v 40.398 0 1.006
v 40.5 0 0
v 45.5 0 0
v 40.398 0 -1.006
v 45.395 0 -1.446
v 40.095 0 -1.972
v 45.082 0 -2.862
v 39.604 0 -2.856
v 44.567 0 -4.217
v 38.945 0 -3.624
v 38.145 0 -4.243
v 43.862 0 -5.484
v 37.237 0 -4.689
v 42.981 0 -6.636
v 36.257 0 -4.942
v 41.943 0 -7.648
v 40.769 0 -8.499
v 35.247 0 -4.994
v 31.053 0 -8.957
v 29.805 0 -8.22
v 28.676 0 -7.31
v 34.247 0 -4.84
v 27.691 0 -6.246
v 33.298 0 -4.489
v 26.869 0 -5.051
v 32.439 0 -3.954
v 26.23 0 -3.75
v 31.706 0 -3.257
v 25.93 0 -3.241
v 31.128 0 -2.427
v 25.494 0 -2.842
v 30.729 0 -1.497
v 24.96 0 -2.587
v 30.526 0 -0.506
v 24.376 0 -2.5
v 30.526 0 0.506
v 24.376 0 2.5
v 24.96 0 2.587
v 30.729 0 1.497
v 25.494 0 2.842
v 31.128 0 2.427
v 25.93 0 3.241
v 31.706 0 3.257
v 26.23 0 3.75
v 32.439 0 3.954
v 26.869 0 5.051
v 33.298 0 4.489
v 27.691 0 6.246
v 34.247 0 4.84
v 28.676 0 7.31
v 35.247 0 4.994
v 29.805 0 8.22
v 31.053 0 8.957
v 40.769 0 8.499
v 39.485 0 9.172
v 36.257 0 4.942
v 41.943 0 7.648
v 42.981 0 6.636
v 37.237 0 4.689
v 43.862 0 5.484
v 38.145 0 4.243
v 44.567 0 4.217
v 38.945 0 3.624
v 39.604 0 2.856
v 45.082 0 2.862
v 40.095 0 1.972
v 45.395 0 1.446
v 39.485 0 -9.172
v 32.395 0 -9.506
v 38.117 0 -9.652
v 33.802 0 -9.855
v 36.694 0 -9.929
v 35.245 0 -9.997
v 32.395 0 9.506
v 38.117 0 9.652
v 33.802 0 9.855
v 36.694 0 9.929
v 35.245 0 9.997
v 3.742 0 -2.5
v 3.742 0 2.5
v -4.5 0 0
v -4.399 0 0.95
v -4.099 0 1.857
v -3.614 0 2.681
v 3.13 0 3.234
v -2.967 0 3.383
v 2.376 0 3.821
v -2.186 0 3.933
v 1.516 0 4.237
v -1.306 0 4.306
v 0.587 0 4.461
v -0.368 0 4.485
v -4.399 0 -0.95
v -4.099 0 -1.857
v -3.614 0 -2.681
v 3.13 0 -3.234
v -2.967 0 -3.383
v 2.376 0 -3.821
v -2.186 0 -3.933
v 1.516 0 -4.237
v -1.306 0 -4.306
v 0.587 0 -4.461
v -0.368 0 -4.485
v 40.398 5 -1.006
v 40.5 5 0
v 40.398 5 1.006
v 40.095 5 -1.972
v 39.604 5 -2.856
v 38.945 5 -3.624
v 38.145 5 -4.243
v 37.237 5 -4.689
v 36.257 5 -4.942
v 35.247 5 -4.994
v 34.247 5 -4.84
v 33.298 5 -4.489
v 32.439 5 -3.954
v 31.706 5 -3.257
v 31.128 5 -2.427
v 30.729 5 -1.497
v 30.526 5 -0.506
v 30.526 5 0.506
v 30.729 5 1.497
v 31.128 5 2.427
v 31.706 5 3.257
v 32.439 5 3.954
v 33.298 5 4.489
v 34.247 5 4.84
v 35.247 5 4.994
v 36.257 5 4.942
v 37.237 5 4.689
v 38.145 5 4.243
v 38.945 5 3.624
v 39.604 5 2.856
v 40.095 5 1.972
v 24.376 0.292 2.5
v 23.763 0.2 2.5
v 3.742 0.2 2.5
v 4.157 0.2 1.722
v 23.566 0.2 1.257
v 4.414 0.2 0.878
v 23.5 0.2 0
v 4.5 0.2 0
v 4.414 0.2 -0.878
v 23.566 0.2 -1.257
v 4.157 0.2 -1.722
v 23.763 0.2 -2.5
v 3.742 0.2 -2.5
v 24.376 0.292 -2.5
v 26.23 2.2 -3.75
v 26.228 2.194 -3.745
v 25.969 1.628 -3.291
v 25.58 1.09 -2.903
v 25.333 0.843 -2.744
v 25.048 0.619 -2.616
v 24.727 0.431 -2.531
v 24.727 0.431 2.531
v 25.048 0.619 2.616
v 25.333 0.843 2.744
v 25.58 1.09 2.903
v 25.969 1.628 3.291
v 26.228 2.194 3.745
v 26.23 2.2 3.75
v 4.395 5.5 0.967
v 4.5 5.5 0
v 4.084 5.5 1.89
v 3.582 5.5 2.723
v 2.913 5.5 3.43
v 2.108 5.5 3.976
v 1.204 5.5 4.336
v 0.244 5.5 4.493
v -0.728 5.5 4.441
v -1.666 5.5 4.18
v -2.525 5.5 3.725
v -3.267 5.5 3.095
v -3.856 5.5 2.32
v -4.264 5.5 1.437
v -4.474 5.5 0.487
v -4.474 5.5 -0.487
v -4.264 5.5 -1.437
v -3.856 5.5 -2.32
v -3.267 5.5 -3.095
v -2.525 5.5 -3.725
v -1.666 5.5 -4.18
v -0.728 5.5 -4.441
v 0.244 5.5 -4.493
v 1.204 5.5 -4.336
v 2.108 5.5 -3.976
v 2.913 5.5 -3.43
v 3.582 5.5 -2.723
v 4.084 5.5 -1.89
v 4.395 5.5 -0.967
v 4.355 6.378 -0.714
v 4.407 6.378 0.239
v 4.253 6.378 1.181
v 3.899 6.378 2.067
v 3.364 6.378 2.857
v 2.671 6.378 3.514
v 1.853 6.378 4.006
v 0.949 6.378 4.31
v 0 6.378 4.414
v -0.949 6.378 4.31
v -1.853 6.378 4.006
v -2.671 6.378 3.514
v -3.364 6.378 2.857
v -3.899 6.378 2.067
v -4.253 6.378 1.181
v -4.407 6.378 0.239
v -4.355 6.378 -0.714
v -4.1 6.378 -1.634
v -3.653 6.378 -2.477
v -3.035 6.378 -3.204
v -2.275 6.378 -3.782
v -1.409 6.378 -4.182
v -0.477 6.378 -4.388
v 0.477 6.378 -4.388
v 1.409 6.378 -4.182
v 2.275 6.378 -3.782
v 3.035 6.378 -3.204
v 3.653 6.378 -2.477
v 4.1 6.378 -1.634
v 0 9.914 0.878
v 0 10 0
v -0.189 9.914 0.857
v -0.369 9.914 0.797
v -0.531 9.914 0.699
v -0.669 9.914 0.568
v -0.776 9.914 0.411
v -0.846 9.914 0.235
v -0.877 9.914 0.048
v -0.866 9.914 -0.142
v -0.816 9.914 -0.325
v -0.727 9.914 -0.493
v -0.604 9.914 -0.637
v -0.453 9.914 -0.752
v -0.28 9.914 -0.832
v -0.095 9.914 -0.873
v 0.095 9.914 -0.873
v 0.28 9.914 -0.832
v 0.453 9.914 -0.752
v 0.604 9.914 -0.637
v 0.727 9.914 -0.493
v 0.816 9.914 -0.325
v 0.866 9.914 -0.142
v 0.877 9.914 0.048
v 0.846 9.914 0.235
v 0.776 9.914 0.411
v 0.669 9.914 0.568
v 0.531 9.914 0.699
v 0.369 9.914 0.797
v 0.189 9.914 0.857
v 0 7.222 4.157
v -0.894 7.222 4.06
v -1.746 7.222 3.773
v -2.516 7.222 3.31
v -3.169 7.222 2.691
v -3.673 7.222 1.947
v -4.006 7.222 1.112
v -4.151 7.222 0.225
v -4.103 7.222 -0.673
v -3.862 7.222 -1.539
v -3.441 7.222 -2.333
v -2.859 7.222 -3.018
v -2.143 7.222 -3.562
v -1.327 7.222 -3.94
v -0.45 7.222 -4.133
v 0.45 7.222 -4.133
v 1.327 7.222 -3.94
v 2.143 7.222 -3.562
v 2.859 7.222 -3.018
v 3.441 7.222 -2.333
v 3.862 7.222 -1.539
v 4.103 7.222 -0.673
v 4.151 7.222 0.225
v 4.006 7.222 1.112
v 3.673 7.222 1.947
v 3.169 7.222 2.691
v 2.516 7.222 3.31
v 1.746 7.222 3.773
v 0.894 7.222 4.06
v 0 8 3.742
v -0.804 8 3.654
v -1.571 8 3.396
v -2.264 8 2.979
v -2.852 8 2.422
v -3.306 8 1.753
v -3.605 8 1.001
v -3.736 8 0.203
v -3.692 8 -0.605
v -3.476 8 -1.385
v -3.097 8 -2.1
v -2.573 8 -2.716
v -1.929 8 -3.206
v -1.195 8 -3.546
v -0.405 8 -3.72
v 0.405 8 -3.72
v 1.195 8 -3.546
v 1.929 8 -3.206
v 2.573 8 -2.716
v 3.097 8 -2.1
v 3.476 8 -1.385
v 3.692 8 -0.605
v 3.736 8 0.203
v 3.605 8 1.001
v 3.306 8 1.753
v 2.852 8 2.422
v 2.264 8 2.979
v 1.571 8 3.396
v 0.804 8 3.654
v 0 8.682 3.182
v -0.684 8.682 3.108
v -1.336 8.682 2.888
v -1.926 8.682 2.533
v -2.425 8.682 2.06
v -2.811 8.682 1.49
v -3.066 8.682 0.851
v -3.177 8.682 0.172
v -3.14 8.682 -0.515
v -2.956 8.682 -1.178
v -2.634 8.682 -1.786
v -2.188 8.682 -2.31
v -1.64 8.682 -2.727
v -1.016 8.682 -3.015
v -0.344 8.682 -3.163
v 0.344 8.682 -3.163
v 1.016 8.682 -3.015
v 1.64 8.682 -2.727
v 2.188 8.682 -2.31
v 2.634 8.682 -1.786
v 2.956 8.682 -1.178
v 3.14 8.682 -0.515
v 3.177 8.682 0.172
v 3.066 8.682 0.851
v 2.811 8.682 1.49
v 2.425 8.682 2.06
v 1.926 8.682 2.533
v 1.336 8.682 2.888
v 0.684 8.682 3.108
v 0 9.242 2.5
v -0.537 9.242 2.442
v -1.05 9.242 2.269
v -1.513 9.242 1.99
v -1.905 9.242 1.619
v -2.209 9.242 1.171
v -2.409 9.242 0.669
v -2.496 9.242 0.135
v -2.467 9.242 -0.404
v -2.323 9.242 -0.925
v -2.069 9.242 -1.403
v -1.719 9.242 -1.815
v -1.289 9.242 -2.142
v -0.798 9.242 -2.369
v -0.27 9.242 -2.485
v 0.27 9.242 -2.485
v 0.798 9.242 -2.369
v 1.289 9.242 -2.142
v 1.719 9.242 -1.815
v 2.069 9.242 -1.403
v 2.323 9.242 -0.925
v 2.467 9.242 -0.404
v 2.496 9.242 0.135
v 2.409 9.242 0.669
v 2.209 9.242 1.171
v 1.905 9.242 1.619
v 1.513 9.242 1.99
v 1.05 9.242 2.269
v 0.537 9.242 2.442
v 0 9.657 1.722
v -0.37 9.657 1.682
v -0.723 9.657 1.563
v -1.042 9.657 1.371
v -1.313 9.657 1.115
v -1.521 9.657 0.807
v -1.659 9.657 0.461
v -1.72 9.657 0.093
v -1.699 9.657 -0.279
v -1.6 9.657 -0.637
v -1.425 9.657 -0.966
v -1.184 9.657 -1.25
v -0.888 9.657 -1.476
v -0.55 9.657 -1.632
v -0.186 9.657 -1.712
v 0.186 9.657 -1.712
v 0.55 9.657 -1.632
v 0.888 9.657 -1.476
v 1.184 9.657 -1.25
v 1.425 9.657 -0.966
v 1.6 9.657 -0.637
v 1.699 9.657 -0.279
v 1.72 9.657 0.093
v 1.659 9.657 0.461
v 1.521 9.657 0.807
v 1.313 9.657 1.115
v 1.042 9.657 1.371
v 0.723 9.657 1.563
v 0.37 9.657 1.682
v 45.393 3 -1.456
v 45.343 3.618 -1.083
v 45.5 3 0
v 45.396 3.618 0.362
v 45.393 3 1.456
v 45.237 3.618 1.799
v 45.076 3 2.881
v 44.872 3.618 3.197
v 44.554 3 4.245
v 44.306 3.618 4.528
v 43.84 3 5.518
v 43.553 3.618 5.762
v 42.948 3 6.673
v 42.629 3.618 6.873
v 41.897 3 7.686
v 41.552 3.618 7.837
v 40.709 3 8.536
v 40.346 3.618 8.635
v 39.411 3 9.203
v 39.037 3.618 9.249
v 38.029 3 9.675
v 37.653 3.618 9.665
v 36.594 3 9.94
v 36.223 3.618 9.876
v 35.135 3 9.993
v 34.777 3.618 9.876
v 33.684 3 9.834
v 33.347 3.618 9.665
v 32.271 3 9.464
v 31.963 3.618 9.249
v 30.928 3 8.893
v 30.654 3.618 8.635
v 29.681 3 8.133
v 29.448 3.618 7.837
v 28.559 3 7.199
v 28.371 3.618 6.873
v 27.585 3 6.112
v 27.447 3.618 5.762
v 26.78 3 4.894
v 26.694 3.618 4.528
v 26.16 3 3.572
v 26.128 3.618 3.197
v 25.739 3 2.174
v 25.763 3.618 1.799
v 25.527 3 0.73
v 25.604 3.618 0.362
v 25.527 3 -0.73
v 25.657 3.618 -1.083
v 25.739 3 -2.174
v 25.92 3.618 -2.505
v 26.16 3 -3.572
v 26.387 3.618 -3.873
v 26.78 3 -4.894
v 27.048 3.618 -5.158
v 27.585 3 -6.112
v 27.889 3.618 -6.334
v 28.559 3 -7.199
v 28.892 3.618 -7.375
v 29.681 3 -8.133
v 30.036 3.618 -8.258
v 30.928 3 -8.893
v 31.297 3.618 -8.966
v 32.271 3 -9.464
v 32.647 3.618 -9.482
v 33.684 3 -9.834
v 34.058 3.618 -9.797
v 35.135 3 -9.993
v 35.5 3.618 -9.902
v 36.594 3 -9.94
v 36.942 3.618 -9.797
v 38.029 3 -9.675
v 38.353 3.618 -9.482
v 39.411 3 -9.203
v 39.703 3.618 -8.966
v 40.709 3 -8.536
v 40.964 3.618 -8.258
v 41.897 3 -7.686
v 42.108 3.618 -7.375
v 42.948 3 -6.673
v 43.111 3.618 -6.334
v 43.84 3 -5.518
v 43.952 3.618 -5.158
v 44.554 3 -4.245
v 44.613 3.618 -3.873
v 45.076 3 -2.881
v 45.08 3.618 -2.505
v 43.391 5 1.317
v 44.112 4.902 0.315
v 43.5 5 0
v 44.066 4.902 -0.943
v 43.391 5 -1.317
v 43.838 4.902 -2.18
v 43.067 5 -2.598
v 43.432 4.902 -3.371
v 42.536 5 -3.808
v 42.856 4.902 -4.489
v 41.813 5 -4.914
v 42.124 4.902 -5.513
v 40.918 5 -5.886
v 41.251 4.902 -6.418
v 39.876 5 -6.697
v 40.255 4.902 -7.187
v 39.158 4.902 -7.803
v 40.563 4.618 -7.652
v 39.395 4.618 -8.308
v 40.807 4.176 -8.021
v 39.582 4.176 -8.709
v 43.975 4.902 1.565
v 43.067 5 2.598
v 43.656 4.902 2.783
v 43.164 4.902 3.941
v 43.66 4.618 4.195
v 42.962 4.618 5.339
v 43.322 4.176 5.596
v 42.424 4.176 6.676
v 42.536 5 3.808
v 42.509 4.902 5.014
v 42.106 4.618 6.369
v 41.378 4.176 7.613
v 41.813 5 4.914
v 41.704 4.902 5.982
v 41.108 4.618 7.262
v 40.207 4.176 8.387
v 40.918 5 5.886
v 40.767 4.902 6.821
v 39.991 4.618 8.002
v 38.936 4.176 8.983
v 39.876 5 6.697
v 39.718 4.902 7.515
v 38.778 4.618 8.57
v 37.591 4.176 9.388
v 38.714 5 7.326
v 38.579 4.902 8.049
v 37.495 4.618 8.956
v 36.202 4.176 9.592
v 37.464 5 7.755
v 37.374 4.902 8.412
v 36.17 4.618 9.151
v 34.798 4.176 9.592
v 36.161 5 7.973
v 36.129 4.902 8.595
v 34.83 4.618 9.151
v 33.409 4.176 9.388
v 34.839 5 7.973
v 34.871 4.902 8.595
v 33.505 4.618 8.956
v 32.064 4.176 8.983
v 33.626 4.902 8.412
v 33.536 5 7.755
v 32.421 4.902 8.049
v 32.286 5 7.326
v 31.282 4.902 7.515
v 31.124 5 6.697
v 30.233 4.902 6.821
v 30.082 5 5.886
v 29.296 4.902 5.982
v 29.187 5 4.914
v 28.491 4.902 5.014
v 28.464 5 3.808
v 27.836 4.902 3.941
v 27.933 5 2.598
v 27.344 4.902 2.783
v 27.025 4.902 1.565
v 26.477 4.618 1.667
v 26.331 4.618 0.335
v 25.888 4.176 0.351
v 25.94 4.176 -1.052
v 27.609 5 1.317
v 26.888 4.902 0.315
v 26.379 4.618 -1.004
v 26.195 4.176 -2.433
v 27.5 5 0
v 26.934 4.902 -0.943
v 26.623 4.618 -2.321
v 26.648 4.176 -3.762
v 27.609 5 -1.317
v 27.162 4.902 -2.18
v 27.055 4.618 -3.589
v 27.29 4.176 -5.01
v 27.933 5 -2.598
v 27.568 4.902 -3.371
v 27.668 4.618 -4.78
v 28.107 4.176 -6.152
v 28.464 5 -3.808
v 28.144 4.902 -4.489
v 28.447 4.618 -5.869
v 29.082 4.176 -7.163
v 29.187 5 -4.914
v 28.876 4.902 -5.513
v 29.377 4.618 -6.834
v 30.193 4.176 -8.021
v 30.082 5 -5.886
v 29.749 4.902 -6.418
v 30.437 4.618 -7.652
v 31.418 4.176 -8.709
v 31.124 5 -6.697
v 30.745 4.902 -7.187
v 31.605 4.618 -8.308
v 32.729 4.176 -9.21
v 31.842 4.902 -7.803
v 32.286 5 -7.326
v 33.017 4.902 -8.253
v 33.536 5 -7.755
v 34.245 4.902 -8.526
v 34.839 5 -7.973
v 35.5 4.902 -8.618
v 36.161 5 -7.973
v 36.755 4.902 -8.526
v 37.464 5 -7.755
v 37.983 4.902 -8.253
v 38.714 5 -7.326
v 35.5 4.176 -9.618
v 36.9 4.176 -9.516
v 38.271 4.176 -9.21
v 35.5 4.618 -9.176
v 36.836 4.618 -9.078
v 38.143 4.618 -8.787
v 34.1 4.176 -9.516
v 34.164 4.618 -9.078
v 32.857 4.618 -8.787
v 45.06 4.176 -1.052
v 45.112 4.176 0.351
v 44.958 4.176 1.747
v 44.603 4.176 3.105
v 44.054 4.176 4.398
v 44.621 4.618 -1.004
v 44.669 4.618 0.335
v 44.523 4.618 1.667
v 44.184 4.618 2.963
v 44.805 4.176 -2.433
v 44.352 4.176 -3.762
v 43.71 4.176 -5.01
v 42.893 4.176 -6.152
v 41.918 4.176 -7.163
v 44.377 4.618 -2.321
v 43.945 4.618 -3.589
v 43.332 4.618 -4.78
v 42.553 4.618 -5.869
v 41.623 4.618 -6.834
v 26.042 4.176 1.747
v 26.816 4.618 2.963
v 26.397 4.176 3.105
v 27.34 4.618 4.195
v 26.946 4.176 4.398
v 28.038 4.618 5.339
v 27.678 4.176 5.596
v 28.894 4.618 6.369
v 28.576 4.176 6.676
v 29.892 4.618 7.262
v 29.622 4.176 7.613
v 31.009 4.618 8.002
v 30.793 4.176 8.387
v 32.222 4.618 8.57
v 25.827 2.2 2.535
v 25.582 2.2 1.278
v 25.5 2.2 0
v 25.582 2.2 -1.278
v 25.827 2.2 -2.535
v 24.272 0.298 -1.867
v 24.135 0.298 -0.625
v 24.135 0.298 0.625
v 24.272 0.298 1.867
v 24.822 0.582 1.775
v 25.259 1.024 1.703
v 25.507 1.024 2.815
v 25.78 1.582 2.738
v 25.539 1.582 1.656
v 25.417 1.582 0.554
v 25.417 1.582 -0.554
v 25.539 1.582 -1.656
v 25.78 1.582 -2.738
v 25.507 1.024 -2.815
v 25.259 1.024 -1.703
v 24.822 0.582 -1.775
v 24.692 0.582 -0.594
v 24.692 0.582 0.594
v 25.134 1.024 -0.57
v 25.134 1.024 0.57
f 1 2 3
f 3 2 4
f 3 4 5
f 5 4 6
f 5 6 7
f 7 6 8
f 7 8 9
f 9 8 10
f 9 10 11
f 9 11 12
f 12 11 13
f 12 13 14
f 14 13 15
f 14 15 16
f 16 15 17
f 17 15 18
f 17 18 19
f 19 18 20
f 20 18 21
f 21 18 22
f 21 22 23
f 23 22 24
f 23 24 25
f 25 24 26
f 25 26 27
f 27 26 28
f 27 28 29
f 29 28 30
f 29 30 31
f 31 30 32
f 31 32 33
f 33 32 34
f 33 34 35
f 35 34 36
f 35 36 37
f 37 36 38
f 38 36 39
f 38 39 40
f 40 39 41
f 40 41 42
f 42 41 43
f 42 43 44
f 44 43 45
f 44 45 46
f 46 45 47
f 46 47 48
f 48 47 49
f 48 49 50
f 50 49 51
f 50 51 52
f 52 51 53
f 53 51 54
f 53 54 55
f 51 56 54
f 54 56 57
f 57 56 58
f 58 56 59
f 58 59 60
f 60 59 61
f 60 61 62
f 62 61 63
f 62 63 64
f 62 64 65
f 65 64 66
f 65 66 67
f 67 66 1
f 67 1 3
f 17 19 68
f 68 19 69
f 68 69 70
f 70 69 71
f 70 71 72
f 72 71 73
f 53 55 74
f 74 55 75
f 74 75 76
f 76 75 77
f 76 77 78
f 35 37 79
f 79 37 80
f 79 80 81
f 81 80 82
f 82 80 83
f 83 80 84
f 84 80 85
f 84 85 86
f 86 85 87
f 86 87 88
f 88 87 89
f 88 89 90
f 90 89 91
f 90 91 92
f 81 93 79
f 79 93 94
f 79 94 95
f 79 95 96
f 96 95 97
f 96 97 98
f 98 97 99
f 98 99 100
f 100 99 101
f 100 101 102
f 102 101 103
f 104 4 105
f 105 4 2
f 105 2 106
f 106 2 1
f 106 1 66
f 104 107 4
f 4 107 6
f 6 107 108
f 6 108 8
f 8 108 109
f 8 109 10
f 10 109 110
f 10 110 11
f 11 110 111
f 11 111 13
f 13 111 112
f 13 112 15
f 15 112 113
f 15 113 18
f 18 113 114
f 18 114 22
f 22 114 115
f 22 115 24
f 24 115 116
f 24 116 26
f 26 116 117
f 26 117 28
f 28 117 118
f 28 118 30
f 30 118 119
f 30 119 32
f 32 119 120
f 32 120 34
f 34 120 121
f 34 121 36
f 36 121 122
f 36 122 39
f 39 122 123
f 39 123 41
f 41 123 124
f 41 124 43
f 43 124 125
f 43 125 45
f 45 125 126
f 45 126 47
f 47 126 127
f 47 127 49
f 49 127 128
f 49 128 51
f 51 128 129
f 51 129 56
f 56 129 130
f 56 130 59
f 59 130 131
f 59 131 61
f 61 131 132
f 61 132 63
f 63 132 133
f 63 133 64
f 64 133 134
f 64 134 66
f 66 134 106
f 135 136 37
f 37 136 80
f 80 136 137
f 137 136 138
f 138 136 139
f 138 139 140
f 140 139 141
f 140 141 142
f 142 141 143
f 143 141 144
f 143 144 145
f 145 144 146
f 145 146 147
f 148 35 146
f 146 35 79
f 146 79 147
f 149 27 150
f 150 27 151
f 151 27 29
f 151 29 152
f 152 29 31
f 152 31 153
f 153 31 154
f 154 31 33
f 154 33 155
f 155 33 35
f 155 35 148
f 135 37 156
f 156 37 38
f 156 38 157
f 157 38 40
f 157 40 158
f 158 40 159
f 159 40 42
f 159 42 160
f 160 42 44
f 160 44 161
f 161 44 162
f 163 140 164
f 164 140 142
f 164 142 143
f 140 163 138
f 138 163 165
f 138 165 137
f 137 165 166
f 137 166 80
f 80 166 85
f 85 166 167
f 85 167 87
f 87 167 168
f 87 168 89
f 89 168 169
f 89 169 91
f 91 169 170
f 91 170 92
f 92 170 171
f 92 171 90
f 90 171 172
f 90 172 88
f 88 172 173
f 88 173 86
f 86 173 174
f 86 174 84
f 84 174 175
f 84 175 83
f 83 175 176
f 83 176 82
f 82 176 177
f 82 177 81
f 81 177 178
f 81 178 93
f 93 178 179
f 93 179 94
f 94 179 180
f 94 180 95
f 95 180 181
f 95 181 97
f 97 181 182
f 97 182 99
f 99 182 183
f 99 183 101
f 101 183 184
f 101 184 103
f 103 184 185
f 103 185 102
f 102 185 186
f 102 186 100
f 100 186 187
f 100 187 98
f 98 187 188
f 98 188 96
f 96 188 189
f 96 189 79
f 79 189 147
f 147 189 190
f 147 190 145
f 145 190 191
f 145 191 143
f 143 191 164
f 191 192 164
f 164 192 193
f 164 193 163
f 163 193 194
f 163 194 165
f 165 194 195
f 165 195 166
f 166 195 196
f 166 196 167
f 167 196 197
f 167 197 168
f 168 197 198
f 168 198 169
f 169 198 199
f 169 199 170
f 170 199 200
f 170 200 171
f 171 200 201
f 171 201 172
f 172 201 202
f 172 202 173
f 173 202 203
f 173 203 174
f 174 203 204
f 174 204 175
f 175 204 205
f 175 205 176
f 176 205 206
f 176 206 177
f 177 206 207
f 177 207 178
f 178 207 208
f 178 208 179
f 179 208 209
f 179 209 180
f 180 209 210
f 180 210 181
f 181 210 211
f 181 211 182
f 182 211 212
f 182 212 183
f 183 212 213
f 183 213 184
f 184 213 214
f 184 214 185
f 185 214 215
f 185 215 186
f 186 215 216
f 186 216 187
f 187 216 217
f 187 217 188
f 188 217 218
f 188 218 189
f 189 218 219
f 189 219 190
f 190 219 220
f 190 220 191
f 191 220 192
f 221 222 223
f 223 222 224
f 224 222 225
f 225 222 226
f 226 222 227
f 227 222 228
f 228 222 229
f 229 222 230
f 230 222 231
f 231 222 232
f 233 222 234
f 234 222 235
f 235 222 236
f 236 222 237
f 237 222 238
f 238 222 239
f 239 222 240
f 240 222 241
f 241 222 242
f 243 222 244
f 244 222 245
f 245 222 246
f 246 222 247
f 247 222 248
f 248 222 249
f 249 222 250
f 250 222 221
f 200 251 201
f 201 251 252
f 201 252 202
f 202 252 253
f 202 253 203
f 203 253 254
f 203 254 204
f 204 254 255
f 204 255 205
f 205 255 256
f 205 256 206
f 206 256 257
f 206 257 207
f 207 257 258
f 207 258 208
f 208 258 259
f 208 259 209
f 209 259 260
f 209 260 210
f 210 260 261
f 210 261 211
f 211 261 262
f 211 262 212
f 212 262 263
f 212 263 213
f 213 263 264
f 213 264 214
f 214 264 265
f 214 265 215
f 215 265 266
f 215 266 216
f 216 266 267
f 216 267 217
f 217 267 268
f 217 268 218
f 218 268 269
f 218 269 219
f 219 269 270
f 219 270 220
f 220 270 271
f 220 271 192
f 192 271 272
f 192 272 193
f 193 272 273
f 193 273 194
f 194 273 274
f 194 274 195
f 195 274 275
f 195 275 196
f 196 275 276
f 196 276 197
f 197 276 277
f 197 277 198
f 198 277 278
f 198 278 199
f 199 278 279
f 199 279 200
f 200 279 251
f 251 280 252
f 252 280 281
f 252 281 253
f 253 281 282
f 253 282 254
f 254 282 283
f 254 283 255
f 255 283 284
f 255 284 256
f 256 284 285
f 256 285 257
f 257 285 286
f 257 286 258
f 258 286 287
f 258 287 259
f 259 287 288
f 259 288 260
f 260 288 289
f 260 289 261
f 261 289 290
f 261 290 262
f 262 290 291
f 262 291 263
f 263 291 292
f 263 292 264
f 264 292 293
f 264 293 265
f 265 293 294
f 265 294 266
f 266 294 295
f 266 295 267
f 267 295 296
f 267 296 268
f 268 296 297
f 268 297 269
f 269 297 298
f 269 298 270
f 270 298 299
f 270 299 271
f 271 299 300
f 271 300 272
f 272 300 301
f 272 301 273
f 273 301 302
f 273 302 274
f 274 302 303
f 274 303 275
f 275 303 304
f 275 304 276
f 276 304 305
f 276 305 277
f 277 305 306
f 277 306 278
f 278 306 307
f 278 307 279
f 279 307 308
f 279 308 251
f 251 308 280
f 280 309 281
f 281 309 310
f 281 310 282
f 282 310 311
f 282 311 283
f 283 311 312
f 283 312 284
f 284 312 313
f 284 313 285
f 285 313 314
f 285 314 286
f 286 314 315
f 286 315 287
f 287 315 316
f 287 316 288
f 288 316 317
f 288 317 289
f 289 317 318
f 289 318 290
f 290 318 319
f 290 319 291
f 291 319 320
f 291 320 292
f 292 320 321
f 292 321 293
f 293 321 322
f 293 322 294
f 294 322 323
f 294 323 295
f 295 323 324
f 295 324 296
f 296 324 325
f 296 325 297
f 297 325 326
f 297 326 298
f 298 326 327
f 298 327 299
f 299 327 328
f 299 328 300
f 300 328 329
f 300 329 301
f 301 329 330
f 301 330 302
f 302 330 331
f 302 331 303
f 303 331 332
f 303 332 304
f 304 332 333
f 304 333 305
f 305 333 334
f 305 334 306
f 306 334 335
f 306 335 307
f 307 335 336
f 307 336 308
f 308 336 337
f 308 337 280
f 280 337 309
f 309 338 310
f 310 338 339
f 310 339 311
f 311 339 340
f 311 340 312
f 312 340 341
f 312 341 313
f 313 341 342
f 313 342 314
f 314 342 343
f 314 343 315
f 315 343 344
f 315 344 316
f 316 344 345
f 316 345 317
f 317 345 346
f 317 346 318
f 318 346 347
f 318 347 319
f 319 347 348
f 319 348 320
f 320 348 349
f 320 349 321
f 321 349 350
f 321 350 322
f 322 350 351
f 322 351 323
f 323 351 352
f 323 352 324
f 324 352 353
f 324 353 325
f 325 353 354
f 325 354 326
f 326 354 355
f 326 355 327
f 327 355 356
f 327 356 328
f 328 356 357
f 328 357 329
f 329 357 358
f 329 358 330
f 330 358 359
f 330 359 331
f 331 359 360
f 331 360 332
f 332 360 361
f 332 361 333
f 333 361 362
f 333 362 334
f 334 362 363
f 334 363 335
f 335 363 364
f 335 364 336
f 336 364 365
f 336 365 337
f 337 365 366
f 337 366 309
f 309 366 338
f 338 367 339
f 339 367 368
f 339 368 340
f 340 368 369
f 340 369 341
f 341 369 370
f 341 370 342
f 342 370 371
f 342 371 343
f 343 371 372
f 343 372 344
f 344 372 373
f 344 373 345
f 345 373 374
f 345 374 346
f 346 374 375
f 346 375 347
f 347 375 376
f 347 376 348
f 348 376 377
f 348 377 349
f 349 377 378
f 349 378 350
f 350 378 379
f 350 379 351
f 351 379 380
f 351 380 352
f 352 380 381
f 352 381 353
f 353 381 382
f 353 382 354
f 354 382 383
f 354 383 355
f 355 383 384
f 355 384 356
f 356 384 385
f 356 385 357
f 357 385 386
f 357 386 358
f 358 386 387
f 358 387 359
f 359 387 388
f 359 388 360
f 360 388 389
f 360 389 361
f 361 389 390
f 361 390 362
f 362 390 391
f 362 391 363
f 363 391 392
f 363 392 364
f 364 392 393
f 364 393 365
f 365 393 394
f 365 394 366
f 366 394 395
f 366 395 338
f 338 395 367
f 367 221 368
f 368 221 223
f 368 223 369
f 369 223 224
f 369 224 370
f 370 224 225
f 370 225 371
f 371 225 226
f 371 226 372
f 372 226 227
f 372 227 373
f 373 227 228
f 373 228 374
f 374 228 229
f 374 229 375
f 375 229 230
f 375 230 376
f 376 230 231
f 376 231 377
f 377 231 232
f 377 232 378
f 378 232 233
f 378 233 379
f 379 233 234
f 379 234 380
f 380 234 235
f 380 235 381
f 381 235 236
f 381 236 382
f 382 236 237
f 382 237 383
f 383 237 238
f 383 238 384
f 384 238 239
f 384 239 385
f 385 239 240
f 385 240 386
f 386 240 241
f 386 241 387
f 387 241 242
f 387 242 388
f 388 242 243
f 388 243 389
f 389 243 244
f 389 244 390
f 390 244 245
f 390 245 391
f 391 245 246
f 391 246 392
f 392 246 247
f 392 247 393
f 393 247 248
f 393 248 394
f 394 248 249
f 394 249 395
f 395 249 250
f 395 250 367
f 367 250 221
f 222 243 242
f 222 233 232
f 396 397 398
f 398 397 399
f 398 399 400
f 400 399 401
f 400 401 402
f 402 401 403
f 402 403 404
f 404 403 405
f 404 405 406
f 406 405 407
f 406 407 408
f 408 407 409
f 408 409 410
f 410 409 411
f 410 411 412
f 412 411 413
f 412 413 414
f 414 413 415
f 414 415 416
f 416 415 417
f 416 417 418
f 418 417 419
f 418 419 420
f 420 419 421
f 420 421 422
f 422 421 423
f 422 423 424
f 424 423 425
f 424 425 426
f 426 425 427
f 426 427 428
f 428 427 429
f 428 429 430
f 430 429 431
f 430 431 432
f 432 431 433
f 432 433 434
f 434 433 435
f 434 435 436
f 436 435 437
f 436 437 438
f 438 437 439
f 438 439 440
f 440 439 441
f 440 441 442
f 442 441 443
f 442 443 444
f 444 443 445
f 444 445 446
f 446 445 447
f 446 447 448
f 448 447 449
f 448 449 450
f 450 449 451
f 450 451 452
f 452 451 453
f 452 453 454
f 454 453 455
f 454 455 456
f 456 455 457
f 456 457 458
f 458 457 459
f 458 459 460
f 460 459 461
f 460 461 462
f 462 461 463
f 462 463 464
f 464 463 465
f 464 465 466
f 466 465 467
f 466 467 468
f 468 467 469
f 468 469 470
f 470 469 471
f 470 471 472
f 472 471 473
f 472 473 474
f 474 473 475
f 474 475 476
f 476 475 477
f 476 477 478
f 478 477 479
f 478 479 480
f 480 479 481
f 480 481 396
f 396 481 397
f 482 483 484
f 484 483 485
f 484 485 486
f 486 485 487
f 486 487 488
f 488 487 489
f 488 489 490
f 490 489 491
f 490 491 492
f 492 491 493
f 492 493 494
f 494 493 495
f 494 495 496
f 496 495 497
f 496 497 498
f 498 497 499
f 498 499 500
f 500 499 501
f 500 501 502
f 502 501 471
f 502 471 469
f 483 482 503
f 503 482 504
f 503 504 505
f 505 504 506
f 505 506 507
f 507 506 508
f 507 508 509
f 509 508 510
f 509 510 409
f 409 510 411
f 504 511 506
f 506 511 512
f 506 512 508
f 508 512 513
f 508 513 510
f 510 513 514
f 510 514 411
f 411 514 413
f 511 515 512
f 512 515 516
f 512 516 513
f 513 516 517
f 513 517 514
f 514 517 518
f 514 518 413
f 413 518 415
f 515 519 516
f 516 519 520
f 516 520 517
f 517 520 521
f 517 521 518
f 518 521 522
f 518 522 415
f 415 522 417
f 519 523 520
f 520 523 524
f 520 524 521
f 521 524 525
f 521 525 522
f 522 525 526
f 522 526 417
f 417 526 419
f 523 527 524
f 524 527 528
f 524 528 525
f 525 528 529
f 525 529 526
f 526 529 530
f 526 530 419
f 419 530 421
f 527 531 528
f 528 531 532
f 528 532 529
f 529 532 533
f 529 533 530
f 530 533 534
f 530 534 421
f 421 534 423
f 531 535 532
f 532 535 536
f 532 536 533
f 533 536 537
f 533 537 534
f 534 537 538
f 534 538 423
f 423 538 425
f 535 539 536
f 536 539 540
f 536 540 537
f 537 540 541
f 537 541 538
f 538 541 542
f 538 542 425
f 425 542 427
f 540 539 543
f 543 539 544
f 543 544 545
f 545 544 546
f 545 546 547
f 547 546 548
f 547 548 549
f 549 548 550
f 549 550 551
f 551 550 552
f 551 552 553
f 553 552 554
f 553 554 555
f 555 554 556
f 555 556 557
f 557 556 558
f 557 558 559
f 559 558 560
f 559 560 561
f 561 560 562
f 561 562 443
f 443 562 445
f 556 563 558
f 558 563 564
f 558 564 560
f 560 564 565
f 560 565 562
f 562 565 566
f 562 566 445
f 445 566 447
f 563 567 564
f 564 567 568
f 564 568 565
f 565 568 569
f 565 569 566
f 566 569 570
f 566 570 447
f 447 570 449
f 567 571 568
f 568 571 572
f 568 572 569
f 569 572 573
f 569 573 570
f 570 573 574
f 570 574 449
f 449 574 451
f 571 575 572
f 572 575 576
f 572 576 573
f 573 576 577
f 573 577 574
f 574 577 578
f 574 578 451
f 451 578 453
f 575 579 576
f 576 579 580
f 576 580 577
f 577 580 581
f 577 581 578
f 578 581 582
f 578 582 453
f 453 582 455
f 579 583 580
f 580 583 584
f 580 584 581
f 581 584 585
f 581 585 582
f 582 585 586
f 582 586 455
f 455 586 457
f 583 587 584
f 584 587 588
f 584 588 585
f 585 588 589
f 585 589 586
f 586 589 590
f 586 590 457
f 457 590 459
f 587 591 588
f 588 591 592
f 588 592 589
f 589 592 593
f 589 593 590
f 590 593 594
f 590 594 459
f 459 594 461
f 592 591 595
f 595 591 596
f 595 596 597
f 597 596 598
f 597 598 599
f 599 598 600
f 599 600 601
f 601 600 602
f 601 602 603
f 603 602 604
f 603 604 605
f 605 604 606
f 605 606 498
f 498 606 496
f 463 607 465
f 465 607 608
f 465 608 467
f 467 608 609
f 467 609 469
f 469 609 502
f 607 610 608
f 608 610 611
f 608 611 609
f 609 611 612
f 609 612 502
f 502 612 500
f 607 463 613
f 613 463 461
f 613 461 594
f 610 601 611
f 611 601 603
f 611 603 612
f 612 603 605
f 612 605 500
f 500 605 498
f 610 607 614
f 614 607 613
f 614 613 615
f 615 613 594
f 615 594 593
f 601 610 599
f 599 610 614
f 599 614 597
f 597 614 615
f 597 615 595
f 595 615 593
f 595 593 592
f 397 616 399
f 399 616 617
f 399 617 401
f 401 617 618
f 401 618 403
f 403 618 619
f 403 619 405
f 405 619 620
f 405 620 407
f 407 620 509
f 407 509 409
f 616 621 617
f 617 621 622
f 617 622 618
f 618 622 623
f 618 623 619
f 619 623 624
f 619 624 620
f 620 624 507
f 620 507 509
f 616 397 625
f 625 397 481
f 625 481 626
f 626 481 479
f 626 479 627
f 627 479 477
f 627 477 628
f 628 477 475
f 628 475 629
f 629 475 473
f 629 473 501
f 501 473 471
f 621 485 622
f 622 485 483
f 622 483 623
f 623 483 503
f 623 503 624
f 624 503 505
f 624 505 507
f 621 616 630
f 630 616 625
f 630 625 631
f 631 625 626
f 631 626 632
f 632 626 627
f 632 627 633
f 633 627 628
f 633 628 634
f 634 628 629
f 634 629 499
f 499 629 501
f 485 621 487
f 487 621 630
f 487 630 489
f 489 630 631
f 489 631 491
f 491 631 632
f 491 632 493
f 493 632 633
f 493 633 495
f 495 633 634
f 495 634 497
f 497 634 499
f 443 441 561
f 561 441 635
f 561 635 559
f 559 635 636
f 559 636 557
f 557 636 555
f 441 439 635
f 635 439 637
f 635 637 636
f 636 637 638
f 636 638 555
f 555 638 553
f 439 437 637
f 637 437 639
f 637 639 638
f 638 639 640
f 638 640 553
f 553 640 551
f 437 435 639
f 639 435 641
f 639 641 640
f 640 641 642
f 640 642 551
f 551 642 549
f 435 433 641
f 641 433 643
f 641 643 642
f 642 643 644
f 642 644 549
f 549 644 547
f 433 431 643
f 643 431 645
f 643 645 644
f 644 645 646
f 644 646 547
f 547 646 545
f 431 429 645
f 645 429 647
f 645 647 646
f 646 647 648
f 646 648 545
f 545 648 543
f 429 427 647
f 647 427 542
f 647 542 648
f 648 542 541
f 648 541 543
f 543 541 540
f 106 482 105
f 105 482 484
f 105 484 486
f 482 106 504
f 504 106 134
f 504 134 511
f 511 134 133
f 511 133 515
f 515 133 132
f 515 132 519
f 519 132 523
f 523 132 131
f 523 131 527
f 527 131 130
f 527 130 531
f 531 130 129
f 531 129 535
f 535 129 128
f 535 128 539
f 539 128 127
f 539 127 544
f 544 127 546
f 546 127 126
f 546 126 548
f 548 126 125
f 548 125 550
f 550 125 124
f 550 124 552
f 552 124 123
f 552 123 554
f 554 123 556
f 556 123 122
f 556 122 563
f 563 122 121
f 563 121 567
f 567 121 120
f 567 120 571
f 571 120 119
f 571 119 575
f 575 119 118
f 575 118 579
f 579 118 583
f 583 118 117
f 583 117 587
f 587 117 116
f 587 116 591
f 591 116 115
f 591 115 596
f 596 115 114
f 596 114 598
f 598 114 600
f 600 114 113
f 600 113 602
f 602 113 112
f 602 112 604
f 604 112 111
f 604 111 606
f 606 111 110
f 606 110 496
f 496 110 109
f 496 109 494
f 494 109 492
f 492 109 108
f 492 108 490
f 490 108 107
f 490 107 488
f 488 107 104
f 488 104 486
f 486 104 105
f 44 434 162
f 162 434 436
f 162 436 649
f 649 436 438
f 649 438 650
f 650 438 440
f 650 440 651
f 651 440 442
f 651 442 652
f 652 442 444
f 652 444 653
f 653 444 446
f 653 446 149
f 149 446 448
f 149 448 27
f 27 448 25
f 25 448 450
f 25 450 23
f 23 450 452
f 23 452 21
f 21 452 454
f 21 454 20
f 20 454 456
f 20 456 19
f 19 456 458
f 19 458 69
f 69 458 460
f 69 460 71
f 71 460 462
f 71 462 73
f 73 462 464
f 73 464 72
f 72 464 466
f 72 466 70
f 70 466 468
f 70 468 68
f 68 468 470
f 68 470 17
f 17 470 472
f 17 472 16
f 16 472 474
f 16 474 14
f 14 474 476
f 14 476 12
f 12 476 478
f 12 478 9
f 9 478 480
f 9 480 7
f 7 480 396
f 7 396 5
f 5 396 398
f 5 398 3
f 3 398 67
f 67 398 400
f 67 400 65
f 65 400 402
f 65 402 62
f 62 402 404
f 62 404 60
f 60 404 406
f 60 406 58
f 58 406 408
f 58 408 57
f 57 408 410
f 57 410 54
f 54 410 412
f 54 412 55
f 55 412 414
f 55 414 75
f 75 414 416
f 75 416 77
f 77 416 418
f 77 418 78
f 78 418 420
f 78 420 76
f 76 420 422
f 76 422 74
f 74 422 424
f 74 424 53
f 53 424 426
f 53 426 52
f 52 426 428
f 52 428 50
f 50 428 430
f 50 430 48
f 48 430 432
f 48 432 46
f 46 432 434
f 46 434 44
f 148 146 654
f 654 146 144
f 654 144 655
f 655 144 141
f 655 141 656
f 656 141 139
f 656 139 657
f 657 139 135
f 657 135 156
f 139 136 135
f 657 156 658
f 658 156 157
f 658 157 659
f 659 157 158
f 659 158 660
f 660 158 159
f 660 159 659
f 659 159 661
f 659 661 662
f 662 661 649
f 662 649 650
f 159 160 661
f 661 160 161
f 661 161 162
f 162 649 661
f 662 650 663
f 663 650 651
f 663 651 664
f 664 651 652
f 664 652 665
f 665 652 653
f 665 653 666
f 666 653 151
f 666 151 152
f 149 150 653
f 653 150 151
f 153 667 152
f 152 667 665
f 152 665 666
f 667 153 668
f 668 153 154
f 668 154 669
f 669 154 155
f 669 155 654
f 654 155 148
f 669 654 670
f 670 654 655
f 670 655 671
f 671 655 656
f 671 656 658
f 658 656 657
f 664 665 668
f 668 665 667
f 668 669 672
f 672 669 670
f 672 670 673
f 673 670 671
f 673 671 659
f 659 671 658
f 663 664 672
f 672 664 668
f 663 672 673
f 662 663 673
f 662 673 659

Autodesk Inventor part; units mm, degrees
ref_plane "YZ Plane" through (0, 0, 0) normal (1, 0, 0) x (0, 1, 0)
ref_plane "XZ Plane" through (0, 0, 0) normal (0, 1, 0) x (-1, 0, 0)
ref_plane "XY Plane" through (0, 0, 0) normal (0, 0, 1) x (1, 0, 0)
sketch "Sketch1" plane through (0, 0, 0) normal (0, 1, 0) x (-1, 0, 0)
  circle A0 centre (0, 0) radius 4.5
  dimension "d0" = 9
extrude "Extrusion1" add sketch "Sketch1" along normal blind 10
fillet "Fillet1" radius 4.5 1 edges at (4.5, 10, 0)
sketch "Sketch2" plane through (0, 0, 0) normal (0, -1, 0) x (1, 0, 0)
  line L0 (0, 2.5) -> (30, 2.5)
  line L1 (30, 2.5) -> (30, -2.5)
  line L2 (30, -2.5) -> (0, -2.5)
  line L3 (0, -2.5) -> (0, 2.5)
  point P0 (0, 0)
  dimension "d4" = 30
  dimension "d5" = 5
  dimension "d6" = 2.5
extrude "Extrusion2" add sketch "Sketch2" against normal blind 0.2
sketch "Sketch3" plane through (0, 0, 0) normal (0, -1, 0) x (1, 0, 0)
  line L0 (30, 2.5) -> (3.7417, 2.5) projected
  circle A0 centre (35.5, 0) radius 10
  circle A1 centre (0, 0) radius 0.101 projected
  circle A2 centre (35.5, 0) radius 5
  line L1 (30, 2.5) -> (30, -2.5) projected
  point P0 (4.3301, 2.5)
  dimension "d20" = 10
  dimension "d21" = 5
  dimension "d22" = 5.5
extrude "Extrusion3" add sketch "Sketch3" against normal blind 5 contours A0
fillet "Fillet2" radius 2 4 edges at (25.5, 5, 0) (25.5, 0.2, 0) (25.8175, 0.1, -2.5) (25.8175, 0.1, 2.5)
properties part number "pipe form"
